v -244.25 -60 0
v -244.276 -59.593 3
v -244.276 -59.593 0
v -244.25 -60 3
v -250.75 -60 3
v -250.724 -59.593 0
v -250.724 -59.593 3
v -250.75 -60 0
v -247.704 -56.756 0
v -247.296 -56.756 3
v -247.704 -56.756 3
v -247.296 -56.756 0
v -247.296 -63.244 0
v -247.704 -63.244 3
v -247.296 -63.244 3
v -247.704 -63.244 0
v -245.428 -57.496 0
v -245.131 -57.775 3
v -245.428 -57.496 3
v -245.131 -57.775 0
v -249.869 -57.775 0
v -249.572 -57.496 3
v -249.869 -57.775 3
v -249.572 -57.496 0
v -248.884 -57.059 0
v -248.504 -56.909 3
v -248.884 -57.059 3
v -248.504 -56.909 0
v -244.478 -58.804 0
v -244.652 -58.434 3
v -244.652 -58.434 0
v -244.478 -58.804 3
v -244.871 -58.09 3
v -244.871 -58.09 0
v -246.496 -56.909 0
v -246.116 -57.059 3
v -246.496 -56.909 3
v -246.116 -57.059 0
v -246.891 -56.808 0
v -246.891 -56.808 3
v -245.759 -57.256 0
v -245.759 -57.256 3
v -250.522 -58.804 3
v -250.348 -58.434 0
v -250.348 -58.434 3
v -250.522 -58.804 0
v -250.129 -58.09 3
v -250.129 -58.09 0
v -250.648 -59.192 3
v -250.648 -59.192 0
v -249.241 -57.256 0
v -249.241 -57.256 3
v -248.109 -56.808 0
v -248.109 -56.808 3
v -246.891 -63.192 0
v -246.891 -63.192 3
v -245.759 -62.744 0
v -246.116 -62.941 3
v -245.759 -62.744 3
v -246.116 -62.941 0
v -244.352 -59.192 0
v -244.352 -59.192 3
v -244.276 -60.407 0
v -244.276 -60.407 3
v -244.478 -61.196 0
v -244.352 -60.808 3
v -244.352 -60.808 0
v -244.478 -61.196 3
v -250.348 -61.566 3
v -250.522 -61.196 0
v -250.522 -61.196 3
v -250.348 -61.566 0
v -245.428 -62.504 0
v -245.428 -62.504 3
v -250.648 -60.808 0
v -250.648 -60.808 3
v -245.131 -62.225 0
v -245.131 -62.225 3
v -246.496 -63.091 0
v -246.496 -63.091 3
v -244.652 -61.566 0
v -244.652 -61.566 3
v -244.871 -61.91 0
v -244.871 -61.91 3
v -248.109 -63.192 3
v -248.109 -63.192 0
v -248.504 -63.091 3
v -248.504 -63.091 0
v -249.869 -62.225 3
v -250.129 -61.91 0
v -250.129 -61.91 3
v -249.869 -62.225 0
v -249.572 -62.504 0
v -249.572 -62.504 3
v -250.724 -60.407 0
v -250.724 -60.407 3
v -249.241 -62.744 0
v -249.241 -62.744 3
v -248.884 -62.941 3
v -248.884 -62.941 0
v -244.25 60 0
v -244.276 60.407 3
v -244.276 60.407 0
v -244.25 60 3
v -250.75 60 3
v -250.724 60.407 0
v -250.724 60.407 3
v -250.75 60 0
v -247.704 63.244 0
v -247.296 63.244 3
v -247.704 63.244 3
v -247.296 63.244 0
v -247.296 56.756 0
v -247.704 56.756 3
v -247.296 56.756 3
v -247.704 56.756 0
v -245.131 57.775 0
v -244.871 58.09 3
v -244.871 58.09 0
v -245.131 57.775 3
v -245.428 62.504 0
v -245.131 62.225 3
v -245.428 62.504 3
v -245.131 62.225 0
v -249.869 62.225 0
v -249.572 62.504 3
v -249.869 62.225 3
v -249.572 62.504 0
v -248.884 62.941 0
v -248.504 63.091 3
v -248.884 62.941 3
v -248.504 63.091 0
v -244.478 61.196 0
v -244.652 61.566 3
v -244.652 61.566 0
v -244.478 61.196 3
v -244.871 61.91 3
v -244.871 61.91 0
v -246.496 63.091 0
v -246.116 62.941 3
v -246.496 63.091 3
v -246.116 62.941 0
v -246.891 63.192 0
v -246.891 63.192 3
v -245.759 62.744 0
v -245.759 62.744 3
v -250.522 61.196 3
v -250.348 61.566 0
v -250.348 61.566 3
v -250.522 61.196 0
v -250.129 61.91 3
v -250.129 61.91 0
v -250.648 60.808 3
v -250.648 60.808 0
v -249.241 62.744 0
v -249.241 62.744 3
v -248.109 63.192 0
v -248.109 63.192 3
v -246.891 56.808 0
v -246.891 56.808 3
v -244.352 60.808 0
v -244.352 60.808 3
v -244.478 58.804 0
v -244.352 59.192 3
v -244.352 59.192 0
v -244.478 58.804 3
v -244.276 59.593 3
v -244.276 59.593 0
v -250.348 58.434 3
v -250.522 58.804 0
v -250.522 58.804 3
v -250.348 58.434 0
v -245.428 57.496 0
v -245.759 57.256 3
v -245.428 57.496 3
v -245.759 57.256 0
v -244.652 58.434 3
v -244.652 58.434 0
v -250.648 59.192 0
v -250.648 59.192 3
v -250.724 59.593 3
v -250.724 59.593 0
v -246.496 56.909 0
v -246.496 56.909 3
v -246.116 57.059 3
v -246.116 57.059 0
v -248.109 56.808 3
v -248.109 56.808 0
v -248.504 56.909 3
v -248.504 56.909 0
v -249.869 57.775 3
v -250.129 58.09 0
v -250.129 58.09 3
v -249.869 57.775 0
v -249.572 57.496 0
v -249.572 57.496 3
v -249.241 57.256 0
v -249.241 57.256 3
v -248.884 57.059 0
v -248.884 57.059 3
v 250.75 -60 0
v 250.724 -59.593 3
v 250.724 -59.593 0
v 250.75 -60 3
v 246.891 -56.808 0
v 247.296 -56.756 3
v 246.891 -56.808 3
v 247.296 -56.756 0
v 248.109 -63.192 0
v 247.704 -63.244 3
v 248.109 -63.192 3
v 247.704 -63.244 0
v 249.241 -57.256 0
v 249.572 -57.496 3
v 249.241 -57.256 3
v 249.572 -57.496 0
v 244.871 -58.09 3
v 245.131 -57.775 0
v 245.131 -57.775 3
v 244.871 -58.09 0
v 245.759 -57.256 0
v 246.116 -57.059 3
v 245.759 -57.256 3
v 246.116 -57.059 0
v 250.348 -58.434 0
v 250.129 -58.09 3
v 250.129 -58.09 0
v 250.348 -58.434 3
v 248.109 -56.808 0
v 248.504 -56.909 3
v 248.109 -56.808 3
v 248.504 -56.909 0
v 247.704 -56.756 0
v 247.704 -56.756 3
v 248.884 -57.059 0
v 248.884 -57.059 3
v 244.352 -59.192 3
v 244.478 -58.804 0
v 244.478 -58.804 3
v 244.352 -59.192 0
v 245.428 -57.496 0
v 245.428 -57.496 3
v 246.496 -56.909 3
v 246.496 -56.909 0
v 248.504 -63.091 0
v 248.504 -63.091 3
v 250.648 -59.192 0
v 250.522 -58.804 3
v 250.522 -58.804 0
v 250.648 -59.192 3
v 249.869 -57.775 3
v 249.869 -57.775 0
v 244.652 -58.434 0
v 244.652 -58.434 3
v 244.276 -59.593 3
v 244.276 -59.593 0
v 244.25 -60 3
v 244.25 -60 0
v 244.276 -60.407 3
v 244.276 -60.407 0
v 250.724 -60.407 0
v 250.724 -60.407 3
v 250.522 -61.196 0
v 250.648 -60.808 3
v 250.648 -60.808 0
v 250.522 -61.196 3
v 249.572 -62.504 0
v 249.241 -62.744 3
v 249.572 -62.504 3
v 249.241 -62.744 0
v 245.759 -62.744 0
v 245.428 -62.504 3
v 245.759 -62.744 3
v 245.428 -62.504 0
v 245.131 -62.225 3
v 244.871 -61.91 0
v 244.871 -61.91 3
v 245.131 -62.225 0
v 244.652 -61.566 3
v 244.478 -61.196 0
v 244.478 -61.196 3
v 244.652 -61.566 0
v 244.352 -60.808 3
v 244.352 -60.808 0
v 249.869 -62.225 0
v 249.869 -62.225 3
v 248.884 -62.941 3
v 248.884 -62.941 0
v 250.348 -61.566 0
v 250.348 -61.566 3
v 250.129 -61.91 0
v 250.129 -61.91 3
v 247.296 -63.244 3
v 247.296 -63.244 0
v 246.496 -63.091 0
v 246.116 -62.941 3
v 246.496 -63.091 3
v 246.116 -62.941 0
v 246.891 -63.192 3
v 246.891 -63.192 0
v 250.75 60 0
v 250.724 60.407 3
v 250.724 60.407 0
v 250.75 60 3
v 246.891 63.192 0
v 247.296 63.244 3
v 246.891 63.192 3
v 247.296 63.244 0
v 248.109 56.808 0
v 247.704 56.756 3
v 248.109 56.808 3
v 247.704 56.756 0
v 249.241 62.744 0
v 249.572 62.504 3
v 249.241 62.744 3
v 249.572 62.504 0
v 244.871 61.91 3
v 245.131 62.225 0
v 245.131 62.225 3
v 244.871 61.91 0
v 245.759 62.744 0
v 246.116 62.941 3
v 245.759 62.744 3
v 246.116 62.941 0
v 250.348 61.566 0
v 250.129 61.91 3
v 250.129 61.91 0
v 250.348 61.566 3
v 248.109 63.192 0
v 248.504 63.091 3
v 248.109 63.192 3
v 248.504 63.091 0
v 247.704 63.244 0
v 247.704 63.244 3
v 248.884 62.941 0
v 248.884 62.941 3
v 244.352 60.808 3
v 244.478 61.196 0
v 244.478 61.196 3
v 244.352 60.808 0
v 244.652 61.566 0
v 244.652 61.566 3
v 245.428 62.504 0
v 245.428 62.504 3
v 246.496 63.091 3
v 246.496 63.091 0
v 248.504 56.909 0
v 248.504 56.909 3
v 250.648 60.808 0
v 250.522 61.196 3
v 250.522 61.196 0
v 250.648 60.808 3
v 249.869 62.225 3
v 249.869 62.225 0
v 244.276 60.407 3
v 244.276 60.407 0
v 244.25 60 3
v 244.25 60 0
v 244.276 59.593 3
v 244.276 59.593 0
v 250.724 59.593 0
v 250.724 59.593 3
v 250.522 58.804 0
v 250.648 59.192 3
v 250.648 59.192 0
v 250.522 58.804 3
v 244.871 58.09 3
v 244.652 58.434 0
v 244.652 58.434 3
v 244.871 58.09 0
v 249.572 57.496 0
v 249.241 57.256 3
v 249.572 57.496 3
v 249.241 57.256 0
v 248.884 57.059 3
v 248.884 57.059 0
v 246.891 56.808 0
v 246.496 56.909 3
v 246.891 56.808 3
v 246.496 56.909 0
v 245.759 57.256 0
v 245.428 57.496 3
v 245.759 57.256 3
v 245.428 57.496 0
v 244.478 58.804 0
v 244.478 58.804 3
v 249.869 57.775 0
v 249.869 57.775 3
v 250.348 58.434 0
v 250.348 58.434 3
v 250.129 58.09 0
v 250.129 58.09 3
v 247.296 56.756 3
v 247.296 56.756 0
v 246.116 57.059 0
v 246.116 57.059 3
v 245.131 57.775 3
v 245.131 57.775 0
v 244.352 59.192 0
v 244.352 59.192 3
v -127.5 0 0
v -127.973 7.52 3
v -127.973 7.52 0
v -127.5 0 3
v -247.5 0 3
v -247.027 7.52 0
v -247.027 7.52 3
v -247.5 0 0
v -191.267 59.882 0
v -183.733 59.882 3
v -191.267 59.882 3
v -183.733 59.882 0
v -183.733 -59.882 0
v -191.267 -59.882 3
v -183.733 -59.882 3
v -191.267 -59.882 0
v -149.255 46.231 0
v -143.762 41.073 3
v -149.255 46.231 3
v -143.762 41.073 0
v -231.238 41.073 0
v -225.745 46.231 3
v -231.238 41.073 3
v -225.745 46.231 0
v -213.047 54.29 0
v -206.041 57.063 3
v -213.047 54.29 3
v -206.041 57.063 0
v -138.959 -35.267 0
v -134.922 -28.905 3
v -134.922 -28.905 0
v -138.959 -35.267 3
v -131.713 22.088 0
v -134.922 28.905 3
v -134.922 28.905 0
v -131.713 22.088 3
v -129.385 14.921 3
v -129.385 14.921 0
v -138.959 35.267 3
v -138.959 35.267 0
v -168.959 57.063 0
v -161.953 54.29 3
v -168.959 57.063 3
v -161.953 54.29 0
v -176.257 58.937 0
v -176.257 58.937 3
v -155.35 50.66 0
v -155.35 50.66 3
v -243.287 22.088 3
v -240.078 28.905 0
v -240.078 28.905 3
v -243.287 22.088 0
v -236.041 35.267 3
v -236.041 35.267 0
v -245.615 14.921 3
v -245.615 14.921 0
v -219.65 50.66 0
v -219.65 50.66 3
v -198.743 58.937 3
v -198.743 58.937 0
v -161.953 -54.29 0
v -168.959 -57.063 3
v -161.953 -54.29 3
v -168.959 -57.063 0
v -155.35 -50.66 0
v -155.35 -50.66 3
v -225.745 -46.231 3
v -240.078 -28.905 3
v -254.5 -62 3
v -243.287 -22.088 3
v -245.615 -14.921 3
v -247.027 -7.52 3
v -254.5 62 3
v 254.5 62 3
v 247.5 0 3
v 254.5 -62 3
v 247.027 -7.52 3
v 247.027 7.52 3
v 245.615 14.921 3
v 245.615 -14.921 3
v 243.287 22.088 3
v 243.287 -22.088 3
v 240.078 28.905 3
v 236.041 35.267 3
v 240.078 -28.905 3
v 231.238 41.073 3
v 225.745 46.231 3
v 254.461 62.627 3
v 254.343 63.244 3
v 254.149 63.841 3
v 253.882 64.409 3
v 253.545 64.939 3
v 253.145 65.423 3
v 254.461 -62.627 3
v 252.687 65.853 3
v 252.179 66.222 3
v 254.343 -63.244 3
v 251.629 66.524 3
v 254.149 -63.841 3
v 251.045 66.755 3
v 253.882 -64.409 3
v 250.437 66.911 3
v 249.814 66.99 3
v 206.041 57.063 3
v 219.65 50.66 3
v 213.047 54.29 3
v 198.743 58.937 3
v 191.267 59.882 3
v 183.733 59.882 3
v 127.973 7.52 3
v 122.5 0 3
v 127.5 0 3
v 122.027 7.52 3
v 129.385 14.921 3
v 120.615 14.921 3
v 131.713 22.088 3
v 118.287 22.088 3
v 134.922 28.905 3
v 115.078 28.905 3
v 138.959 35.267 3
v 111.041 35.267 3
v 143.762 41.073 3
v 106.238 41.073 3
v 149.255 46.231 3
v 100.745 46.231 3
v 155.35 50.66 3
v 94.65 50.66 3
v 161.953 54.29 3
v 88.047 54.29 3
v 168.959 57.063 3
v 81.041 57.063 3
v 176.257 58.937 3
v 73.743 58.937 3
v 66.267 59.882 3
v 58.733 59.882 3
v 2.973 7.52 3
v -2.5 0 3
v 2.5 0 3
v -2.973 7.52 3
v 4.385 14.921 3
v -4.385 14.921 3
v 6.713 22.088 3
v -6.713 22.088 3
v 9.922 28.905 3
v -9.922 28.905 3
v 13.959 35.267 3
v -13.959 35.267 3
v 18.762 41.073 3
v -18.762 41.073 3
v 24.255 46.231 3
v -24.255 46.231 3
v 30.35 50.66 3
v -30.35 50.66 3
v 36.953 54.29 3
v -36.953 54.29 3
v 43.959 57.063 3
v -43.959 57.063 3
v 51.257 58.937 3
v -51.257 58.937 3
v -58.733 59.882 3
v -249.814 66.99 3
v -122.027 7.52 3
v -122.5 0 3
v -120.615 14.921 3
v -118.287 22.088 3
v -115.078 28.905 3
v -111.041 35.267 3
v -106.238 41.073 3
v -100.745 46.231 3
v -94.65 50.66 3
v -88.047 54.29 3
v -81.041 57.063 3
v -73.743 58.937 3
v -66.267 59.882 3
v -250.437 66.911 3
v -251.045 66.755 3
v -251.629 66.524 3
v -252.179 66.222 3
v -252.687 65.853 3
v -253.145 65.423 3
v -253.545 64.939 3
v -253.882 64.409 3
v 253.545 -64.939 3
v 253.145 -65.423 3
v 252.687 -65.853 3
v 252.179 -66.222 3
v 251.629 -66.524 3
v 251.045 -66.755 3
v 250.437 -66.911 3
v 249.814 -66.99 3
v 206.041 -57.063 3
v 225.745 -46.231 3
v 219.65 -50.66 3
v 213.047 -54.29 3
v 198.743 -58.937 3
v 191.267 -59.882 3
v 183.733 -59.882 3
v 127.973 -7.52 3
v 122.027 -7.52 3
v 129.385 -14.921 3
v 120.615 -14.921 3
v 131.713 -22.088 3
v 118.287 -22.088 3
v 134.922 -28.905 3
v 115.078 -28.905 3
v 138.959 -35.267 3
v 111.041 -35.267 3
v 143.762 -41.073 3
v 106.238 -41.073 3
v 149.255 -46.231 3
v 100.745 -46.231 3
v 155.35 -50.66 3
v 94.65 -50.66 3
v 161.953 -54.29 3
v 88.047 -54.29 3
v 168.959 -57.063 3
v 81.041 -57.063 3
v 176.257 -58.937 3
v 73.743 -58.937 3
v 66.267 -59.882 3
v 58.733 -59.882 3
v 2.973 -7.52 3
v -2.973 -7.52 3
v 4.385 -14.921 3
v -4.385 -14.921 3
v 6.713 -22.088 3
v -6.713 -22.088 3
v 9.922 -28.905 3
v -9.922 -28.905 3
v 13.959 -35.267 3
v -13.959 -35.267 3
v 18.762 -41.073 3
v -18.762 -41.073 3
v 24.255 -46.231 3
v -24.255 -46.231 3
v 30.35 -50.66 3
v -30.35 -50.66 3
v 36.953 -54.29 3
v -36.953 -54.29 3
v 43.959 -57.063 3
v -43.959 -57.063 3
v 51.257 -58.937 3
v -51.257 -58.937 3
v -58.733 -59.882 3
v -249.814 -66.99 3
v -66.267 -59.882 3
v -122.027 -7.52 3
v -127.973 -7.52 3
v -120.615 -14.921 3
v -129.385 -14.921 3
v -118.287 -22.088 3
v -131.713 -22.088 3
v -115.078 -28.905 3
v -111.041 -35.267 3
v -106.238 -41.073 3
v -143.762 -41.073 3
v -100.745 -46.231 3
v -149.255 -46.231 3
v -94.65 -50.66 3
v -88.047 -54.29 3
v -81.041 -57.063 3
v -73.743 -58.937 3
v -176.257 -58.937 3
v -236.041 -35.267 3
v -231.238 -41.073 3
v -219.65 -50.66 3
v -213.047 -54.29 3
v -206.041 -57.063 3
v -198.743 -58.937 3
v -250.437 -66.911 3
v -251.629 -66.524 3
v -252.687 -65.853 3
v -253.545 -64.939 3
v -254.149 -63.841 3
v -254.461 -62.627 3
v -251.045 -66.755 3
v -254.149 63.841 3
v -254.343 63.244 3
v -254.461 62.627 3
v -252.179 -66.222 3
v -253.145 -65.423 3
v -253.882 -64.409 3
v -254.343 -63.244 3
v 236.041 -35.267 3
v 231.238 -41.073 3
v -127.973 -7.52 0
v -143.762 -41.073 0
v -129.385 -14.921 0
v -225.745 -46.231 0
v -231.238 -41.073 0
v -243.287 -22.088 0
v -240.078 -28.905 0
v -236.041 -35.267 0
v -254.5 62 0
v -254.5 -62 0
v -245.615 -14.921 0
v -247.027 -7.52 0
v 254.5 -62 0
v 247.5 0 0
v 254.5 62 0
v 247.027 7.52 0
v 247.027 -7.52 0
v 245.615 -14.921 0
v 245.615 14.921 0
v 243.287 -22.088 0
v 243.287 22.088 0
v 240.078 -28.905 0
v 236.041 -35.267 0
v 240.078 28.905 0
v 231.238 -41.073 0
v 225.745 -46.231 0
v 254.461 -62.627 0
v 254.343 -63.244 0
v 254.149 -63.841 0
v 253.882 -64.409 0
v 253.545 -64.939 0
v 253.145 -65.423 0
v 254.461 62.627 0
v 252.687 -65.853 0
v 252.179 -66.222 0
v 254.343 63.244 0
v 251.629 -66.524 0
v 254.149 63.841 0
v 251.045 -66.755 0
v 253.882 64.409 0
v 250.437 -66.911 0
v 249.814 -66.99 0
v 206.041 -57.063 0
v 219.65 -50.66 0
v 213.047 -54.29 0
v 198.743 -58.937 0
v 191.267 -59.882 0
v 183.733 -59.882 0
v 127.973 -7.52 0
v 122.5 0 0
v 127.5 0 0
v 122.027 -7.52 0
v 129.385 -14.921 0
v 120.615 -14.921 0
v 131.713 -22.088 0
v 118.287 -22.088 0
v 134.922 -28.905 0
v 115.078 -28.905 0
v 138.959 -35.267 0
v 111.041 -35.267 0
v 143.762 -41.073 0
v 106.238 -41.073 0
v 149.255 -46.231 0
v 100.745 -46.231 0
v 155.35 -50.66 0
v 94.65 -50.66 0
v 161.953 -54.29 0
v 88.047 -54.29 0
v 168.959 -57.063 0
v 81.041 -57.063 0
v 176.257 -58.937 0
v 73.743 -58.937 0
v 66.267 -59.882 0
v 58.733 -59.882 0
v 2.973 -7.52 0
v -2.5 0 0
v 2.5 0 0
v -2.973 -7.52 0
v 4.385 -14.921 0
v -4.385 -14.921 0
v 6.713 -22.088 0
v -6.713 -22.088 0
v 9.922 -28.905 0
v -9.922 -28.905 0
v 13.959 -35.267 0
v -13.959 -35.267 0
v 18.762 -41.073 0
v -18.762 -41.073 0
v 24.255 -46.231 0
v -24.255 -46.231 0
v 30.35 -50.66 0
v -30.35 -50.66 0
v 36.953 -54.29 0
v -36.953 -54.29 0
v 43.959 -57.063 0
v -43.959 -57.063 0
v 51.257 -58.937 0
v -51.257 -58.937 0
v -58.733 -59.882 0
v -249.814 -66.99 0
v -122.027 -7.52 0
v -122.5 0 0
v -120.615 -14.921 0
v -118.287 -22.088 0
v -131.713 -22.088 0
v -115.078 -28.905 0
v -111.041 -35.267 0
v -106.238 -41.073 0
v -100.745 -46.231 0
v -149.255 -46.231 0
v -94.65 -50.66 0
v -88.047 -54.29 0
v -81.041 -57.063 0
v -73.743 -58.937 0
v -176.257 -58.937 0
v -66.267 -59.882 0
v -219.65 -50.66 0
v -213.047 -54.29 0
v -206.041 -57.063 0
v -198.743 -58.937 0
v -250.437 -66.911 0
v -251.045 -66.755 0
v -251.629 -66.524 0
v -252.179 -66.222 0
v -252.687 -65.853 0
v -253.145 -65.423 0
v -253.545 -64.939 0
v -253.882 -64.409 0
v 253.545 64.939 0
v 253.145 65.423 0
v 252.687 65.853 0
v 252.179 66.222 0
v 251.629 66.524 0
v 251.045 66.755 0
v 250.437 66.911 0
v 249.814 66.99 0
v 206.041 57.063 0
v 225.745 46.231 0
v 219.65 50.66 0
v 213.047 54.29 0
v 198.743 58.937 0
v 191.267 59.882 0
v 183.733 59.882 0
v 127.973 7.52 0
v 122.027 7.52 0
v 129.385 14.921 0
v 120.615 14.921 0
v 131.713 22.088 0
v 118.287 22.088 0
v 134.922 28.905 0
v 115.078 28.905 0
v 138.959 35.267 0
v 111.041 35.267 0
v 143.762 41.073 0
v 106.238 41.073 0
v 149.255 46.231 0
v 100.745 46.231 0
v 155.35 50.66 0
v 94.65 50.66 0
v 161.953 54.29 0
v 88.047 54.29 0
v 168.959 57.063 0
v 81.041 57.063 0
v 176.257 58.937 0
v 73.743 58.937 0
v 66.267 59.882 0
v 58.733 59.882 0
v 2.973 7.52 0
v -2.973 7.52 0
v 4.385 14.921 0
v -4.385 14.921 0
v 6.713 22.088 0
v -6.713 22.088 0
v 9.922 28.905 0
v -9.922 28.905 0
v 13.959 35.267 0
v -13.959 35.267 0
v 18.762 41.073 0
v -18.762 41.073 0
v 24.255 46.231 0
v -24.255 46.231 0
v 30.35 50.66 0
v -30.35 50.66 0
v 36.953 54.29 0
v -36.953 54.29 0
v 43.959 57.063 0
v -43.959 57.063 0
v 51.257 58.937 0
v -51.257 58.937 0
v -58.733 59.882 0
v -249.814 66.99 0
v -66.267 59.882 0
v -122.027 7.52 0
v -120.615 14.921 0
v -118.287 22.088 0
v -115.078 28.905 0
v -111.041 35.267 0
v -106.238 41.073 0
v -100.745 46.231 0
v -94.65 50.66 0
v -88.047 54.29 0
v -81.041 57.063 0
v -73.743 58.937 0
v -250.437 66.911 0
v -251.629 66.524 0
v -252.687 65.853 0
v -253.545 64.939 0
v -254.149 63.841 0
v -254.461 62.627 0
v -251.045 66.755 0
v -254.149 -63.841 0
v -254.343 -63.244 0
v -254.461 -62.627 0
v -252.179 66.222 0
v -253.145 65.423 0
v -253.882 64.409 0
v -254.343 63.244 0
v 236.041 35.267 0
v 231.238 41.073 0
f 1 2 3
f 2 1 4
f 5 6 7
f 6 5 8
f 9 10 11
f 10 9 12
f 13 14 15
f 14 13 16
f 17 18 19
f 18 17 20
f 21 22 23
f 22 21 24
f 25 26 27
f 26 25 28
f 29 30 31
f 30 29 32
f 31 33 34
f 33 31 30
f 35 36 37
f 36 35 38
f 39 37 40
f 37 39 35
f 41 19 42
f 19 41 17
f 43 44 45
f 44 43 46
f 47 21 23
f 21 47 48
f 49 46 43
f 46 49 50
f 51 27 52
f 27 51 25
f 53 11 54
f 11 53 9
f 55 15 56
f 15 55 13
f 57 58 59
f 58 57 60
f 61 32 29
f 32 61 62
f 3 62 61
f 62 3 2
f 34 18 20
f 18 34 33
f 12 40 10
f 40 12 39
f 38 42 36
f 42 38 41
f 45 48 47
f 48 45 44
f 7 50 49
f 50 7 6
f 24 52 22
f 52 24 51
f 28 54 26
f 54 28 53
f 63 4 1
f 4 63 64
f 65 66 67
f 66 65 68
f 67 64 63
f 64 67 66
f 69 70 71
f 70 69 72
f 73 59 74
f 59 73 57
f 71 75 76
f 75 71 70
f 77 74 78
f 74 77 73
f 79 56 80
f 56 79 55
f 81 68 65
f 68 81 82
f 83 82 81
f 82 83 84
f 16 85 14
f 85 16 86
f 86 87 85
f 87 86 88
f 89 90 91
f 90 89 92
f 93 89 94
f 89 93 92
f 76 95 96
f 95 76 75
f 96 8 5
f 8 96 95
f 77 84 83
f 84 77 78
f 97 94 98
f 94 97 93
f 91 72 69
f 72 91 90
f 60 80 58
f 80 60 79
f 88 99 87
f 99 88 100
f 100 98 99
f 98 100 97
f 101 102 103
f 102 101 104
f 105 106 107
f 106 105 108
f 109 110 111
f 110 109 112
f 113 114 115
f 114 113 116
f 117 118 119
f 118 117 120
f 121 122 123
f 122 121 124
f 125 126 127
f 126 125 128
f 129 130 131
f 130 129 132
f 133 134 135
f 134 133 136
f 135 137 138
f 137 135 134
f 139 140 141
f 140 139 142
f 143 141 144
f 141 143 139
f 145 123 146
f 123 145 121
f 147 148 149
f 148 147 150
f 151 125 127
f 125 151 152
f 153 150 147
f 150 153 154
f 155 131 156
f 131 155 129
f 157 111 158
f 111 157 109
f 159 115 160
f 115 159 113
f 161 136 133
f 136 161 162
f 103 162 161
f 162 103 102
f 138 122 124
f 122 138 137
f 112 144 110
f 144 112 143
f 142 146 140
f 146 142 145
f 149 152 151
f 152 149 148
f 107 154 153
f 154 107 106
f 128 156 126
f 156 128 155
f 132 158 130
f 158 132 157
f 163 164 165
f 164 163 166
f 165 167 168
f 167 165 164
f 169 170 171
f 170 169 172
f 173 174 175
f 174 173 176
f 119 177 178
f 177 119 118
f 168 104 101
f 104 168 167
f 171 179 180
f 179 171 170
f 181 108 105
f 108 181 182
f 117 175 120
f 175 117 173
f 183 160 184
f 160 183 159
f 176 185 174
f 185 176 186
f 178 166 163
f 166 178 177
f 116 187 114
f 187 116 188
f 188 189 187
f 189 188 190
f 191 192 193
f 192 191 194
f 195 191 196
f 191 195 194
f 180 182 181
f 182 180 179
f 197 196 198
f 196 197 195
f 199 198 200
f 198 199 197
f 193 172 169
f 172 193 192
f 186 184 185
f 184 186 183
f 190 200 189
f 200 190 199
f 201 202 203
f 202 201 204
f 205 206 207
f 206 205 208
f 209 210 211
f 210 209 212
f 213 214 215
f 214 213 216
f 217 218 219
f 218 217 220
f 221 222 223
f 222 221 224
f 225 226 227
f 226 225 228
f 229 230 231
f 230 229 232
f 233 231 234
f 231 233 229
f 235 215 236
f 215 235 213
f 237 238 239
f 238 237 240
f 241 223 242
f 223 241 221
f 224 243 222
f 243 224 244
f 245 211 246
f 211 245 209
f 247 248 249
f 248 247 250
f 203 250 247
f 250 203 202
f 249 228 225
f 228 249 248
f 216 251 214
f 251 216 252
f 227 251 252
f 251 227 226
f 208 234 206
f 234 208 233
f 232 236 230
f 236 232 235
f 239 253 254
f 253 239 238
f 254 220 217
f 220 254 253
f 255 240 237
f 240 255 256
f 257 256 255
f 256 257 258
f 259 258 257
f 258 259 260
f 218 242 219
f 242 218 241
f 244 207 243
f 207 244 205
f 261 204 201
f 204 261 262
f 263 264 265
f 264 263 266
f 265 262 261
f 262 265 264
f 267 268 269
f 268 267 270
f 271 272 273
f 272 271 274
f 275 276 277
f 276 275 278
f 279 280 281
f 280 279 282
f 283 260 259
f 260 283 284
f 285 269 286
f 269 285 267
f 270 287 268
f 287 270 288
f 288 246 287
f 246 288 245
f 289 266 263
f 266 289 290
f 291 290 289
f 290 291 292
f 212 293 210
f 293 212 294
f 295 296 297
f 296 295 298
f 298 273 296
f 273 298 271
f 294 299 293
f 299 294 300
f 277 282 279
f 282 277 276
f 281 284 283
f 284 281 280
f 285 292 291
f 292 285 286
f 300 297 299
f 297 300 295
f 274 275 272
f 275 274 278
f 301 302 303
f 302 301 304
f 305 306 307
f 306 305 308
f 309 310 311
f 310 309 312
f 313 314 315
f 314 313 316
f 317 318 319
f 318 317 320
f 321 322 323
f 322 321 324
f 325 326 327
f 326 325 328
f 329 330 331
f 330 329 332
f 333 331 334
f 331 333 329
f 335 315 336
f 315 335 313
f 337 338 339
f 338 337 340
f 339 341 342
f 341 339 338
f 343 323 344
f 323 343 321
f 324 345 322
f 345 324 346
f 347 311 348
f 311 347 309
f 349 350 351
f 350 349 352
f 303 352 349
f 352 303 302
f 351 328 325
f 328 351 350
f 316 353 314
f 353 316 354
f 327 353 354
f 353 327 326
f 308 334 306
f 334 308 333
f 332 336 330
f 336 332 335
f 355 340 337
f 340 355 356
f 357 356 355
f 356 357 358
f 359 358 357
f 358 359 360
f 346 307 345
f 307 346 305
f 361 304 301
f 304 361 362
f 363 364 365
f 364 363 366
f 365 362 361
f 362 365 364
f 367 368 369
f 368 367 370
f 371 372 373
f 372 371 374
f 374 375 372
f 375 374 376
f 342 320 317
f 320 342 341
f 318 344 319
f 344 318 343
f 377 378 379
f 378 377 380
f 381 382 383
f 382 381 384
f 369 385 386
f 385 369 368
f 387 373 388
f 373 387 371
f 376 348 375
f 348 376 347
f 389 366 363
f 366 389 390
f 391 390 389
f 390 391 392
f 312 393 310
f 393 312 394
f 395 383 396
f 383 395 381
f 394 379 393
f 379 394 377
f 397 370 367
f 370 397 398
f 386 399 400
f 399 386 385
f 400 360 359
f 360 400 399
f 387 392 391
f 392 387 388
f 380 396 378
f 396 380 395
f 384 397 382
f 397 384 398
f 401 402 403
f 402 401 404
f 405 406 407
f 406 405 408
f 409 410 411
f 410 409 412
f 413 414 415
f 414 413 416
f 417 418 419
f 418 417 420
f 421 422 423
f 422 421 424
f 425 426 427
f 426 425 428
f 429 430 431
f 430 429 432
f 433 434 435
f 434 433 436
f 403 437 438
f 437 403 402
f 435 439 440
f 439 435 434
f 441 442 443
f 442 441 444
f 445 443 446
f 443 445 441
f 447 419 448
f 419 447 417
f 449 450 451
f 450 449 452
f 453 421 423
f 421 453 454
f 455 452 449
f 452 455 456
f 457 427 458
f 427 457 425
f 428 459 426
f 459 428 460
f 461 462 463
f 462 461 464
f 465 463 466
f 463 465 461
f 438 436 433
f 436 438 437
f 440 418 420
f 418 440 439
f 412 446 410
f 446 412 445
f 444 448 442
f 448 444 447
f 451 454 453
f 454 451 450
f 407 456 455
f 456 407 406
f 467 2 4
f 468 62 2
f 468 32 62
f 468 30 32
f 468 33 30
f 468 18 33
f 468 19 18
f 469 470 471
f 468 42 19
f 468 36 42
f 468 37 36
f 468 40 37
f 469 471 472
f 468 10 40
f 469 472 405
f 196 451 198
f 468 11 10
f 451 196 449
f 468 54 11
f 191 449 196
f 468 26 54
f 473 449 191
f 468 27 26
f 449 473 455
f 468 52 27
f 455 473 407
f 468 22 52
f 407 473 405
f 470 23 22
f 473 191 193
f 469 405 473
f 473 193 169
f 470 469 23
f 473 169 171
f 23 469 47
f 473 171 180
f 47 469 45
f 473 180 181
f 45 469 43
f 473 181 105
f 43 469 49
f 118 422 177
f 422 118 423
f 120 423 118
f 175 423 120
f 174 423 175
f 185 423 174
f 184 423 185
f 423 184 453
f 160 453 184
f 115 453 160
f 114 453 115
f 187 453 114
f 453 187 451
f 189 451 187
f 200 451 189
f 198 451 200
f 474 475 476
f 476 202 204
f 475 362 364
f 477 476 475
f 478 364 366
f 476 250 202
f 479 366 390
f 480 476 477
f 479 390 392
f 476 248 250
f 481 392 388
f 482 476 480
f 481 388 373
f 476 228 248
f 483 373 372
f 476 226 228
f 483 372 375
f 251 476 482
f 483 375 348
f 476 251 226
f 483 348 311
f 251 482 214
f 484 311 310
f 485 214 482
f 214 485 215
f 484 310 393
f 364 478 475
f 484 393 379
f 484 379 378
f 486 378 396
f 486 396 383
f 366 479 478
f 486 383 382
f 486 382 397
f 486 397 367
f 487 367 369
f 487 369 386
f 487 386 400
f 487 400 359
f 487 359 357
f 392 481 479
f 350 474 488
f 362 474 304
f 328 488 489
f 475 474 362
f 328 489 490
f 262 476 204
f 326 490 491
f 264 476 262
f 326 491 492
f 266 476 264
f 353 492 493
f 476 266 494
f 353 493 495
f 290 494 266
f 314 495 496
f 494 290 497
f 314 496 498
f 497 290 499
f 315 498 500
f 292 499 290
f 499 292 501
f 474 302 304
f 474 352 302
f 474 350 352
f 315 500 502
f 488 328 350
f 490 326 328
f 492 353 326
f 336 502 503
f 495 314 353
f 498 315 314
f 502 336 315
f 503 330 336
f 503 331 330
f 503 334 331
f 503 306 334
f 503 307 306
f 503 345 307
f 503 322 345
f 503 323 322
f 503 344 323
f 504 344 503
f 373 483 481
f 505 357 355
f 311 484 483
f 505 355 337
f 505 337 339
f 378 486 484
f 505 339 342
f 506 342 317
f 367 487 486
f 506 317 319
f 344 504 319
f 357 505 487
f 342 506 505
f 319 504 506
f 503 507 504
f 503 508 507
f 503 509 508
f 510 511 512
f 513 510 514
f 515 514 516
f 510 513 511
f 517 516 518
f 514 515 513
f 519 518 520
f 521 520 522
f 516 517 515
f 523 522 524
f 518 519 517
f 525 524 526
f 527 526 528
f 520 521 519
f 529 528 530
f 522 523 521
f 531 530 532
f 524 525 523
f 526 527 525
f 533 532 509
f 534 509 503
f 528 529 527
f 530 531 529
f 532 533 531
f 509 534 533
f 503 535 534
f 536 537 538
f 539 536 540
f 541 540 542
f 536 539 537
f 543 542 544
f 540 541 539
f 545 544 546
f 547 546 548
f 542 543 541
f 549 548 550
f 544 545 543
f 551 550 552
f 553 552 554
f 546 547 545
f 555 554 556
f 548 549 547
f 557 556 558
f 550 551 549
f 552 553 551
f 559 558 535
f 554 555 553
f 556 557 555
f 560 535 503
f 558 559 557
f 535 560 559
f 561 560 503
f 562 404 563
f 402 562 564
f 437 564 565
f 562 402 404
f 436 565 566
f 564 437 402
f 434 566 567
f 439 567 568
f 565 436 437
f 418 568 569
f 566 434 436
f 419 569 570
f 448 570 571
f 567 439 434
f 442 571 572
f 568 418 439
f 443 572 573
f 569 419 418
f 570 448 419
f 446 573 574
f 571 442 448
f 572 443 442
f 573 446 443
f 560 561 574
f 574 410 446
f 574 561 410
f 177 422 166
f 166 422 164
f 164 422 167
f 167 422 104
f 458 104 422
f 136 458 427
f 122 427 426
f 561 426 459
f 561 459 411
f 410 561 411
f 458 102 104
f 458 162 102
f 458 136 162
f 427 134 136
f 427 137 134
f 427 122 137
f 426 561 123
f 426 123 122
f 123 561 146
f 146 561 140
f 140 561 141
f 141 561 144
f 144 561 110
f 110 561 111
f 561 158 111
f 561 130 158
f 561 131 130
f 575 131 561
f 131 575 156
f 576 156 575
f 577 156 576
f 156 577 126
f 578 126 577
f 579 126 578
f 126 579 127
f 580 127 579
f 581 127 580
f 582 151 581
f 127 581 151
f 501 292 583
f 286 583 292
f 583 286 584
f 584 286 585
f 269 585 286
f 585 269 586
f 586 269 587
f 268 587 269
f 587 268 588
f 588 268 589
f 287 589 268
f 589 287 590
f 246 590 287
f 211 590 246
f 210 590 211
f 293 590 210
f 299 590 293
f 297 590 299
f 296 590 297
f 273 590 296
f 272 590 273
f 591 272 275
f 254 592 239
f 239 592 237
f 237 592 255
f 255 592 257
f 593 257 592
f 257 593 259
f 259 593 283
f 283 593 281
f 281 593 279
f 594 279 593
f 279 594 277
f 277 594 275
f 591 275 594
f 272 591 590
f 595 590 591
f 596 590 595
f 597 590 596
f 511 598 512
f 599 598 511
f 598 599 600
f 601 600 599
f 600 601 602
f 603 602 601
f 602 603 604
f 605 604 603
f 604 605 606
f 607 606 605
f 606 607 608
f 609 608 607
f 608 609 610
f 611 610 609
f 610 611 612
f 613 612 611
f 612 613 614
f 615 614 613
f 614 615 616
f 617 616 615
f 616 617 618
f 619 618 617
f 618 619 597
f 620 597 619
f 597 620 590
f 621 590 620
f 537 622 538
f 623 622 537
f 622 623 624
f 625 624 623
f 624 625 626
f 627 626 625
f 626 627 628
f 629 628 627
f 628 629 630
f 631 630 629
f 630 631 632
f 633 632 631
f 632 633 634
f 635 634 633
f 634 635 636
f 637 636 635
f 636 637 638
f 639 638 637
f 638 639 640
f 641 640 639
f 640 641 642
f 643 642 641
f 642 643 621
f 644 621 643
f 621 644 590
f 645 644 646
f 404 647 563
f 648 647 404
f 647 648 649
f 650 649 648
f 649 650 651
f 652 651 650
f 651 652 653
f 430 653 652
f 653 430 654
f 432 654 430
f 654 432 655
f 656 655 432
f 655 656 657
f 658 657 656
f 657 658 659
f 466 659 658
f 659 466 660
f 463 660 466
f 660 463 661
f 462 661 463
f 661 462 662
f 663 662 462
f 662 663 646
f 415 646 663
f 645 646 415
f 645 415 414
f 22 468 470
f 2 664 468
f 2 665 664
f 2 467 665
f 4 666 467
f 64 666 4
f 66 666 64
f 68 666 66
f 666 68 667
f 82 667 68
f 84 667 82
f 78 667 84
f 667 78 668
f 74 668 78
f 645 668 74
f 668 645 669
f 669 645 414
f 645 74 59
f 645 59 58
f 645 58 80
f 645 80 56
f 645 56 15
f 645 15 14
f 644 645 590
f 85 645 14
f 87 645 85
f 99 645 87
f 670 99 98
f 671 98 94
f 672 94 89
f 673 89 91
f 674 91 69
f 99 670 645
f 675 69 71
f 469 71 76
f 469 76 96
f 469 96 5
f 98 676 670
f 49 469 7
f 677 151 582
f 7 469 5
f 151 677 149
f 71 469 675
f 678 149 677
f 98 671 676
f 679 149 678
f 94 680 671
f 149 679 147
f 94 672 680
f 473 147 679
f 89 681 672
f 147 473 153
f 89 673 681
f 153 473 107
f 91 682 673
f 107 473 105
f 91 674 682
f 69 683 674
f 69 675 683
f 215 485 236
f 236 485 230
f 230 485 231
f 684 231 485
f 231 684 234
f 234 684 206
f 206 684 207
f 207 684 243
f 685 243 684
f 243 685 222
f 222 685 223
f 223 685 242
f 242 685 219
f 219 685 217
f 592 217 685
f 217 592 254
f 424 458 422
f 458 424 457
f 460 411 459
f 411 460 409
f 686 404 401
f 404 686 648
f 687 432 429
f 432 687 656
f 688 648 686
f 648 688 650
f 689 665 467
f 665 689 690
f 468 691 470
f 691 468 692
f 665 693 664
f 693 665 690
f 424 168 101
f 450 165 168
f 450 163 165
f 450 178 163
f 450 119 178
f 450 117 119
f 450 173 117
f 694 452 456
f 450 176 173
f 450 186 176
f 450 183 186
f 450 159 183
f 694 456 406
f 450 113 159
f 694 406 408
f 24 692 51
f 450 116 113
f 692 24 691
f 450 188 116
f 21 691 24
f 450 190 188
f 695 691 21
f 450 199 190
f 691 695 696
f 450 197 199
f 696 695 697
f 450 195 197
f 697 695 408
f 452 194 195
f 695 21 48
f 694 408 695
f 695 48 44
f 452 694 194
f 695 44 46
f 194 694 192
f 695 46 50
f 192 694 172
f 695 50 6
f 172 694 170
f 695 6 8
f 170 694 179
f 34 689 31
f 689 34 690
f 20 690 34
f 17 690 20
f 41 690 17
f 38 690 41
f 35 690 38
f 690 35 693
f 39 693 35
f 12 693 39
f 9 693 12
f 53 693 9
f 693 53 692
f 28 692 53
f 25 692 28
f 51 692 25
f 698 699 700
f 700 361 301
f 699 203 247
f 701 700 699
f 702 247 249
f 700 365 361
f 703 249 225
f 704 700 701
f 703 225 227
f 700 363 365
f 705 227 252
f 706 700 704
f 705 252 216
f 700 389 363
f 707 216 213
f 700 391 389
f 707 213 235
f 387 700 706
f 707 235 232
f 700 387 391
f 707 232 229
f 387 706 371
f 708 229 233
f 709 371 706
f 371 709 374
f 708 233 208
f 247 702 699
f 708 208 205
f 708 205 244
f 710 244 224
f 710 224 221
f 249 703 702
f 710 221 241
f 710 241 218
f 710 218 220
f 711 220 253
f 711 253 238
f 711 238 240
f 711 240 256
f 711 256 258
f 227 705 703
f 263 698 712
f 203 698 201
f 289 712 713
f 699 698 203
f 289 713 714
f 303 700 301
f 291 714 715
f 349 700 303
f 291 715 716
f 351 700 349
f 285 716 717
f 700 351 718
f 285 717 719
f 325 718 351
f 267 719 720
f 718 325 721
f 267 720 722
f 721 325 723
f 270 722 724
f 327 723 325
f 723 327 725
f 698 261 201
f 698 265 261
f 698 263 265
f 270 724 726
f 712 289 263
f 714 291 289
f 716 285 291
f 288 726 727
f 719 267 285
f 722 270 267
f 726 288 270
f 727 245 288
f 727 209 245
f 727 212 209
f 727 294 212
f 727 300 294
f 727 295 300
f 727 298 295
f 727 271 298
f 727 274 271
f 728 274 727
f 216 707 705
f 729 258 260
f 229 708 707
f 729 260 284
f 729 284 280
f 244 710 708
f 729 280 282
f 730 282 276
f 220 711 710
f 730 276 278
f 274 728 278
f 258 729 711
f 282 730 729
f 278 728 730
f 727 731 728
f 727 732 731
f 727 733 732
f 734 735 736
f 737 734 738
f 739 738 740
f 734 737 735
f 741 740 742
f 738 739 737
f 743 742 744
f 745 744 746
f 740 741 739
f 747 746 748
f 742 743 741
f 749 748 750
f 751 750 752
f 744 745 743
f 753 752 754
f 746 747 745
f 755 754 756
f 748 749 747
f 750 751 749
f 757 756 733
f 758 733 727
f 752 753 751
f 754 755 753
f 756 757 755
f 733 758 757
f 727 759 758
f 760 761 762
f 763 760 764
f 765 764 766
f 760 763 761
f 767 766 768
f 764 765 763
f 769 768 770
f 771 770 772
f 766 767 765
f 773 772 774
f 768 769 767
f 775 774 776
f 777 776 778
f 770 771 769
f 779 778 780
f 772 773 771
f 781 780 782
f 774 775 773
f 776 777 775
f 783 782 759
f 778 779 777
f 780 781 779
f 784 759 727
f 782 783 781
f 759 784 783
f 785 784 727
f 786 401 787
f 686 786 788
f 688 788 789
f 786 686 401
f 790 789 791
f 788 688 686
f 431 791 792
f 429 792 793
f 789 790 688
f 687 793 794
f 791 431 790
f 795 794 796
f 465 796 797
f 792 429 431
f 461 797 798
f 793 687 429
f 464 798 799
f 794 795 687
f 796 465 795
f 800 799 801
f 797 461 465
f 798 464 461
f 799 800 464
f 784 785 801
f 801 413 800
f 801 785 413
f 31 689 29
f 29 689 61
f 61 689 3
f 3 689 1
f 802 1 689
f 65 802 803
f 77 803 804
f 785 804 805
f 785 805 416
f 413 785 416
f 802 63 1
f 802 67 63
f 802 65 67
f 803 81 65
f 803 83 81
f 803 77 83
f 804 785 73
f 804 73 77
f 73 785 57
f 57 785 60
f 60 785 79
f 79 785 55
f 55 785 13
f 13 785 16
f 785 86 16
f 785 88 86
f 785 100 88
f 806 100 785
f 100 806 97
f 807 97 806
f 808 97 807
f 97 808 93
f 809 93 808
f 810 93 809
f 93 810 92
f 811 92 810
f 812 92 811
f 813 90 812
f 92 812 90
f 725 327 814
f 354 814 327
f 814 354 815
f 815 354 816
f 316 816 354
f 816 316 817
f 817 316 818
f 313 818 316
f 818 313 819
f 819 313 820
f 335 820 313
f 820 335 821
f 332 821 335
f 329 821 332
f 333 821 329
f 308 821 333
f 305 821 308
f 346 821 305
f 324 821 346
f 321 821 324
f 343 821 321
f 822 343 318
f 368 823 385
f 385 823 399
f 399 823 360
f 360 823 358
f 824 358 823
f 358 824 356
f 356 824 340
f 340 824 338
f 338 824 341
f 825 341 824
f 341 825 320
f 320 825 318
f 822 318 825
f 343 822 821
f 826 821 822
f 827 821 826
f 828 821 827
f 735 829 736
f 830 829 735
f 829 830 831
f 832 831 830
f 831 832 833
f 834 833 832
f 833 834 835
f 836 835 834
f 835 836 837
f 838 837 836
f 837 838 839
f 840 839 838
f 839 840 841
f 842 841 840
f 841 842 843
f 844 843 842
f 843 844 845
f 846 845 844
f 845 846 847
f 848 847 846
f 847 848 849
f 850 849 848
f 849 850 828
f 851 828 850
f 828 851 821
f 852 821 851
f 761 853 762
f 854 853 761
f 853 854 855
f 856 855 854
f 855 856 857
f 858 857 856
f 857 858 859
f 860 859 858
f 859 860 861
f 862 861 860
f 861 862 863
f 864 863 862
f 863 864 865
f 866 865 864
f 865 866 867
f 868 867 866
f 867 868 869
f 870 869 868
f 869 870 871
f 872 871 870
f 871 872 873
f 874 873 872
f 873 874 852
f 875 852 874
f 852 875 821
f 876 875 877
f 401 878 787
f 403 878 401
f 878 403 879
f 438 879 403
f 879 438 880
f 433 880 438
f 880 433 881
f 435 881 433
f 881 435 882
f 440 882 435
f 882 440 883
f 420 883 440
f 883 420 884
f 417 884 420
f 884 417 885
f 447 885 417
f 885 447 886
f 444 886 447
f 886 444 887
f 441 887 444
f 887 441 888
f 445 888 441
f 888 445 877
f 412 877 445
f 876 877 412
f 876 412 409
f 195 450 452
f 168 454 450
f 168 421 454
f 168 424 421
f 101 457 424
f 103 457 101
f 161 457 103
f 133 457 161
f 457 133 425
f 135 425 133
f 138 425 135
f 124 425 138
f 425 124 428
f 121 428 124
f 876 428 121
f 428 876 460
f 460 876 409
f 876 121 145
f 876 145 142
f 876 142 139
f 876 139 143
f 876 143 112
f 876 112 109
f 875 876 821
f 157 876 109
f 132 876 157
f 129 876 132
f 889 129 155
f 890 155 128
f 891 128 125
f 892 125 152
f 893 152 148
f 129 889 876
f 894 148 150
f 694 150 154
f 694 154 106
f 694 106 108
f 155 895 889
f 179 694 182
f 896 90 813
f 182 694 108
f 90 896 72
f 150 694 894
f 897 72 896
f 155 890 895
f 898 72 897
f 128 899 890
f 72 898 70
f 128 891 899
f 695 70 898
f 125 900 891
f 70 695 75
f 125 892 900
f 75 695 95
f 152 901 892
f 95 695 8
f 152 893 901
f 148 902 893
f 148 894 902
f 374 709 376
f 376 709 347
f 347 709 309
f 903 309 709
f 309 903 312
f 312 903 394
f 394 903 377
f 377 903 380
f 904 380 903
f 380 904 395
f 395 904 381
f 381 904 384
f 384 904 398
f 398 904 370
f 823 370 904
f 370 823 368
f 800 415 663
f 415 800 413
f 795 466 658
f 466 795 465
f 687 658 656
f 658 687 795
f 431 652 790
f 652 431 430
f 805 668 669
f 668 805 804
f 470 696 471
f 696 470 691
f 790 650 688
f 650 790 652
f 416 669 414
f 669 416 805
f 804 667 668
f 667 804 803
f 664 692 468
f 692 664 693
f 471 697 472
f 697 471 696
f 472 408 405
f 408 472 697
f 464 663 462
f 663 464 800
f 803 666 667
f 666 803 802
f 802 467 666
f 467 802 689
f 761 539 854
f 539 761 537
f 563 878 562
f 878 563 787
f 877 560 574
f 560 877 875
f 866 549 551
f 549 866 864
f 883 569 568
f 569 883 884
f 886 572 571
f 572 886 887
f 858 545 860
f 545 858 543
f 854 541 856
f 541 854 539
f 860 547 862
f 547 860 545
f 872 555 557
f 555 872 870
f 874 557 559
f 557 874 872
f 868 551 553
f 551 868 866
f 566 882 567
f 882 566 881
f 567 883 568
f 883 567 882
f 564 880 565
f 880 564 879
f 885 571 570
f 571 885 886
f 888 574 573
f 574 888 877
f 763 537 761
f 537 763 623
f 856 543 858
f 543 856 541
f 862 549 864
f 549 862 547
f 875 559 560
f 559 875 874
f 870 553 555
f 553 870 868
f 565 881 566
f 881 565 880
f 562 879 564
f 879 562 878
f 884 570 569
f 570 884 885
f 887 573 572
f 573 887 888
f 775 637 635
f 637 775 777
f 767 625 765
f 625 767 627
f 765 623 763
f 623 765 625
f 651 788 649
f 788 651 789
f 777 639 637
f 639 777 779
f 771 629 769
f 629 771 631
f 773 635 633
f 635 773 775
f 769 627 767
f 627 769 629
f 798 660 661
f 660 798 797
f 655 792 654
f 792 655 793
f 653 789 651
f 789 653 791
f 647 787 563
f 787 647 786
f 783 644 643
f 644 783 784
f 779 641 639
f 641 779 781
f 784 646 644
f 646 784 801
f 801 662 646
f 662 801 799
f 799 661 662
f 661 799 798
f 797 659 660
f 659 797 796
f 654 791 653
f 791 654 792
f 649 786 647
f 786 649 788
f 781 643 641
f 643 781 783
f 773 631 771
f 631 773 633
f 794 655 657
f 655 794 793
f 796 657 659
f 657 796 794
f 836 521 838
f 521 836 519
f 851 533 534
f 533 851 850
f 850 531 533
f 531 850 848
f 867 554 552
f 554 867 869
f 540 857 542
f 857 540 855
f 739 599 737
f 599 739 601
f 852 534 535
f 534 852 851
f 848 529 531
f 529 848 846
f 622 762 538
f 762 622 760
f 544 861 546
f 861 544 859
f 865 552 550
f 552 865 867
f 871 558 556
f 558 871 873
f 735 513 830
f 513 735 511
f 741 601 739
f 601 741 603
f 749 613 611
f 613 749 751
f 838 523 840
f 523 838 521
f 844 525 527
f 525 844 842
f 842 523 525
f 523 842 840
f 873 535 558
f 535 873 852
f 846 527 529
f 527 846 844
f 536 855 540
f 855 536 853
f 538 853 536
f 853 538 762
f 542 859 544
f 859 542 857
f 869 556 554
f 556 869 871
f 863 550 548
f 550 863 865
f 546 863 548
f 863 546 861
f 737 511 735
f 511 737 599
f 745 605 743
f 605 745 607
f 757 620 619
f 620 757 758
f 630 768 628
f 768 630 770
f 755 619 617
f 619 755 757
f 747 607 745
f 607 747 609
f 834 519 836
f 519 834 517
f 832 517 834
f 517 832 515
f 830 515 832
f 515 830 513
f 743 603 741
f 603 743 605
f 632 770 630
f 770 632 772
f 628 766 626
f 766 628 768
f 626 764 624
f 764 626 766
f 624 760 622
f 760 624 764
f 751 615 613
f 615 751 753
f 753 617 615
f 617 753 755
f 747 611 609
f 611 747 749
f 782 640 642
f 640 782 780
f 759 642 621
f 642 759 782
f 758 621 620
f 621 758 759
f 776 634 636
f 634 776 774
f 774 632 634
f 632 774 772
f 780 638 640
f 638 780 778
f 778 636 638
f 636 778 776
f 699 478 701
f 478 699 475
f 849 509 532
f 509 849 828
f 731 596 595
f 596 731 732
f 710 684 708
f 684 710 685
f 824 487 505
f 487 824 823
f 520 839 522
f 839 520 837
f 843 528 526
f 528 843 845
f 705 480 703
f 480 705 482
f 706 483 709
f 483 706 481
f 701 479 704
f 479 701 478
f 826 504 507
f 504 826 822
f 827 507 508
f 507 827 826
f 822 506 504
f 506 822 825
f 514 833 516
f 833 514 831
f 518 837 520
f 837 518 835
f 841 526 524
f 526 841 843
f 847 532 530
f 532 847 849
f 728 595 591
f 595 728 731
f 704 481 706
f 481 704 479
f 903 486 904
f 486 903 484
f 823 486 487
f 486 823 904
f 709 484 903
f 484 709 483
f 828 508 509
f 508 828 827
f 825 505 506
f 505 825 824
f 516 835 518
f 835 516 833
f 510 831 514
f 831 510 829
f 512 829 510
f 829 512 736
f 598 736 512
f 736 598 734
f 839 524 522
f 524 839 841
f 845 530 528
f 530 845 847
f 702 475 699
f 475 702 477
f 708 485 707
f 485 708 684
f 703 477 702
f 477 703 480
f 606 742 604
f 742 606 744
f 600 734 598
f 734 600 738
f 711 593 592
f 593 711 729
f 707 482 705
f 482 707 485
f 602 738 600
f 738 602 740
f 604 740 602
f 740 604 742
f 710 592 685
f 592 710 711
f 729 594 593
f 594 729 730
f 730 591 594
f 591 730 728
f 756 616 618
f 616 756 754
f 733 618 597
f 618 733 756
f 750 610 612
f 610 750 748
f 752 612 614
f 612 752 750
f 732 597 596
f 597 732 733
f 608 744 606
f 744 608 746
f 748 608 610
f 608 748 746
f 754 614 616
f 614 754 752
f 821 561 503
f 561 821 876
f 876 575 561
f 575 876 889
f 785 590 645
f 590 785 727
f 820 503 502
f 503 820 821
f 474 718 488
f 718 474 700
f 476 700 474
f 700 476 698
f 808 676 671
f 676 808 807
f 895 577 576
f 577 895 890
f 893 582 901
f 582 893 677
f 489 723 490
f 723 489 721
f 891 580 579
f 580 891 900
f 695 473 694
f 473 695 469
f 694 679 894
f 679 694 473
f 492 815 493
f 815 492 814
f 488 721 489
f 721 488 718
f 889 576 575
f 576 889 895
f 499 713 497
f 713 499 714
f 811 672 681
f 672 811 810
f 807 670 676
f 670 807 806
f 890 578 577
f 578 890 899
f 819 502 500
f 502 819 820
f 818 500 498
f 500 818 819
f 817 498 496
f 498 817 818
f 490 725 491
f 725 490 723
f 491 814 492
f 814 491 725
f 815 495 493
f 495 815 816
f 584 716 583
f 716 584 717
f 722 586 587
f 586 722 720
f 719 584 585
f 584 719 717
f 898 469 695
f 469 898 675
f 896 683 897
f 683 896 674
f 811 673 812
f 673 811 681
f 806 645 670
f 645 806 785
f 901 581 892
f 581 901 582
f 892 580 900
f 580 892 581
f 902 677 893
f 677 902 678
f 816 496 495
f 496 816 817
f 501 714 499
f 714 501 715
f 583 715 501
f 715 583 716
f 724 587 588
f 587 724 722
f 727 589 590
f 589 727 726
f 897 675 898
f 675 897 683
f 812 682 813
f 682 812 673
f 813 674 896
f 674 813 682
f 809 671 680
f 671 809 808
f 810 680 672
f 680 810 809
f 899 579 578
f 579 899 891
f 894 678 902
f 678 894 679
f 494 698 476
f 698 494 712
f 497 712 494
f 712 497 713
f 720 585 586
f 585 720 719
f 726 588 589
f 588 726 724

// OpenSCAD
$fn = 50;


difference() {
	union() {
		hull() {
			translate(v = [-249.5000000000, 62.0000000000, 0]) {
				cylinder(h = 3, r = 5);
			}
			translate(v = [249.5000000000, 62.0000000000, 0]) {
				cylinder(h = 3, r = 5);
			}
			translate(v = [-249.5000000000, -62.0000000000, 0]) {
				cylinder(h = 3, r = 5);
			}
			translate(v = [249.5000000000, -62.0000000000, 0]) {
				cylinder(h = 3, r = 5);
			}
		}
	}
	union() {
		#translate(v = [-247.5000000000, -60.0000000000, -100.0000000000]) {
			cylinder(h = 200, r = 3.2500000000);
		}
		#translate(v = [-247.5000000000, 60.0000000000, -100.0000000000]) {
			cylinder(h = 200, r = 3.2500000000);
		}
		#translate(v = [247.5000000000, -60.0000000000, -100.0000000000]) {
			cylinder(h = 200, r = 3.2500000000);
		}
		#translate(v = [247.5000000000, 60.0000000000, -100.0000000000]) {
			cylinder(h = 200, r = 3.2500000000);
		}
		#translate(v = [-187.5000000000, 0, 0]) {
			cylinder(h = 3, r = 60.0000000000);
		}
		#translate(v = [-62.5000000000, 0, 0]) {
			cylinder(h = 3, r = 60.0000000000);
		}
		#translate(v = [62.5000000000, 0, 0]) {
			cylinder(h = 3, r = 60.0000000000);
		}
		#translate(v = [187.5000000000, 0, 0]) {
			cylinder(h = 3, r = 60.0000000000);
		}
	}
}
